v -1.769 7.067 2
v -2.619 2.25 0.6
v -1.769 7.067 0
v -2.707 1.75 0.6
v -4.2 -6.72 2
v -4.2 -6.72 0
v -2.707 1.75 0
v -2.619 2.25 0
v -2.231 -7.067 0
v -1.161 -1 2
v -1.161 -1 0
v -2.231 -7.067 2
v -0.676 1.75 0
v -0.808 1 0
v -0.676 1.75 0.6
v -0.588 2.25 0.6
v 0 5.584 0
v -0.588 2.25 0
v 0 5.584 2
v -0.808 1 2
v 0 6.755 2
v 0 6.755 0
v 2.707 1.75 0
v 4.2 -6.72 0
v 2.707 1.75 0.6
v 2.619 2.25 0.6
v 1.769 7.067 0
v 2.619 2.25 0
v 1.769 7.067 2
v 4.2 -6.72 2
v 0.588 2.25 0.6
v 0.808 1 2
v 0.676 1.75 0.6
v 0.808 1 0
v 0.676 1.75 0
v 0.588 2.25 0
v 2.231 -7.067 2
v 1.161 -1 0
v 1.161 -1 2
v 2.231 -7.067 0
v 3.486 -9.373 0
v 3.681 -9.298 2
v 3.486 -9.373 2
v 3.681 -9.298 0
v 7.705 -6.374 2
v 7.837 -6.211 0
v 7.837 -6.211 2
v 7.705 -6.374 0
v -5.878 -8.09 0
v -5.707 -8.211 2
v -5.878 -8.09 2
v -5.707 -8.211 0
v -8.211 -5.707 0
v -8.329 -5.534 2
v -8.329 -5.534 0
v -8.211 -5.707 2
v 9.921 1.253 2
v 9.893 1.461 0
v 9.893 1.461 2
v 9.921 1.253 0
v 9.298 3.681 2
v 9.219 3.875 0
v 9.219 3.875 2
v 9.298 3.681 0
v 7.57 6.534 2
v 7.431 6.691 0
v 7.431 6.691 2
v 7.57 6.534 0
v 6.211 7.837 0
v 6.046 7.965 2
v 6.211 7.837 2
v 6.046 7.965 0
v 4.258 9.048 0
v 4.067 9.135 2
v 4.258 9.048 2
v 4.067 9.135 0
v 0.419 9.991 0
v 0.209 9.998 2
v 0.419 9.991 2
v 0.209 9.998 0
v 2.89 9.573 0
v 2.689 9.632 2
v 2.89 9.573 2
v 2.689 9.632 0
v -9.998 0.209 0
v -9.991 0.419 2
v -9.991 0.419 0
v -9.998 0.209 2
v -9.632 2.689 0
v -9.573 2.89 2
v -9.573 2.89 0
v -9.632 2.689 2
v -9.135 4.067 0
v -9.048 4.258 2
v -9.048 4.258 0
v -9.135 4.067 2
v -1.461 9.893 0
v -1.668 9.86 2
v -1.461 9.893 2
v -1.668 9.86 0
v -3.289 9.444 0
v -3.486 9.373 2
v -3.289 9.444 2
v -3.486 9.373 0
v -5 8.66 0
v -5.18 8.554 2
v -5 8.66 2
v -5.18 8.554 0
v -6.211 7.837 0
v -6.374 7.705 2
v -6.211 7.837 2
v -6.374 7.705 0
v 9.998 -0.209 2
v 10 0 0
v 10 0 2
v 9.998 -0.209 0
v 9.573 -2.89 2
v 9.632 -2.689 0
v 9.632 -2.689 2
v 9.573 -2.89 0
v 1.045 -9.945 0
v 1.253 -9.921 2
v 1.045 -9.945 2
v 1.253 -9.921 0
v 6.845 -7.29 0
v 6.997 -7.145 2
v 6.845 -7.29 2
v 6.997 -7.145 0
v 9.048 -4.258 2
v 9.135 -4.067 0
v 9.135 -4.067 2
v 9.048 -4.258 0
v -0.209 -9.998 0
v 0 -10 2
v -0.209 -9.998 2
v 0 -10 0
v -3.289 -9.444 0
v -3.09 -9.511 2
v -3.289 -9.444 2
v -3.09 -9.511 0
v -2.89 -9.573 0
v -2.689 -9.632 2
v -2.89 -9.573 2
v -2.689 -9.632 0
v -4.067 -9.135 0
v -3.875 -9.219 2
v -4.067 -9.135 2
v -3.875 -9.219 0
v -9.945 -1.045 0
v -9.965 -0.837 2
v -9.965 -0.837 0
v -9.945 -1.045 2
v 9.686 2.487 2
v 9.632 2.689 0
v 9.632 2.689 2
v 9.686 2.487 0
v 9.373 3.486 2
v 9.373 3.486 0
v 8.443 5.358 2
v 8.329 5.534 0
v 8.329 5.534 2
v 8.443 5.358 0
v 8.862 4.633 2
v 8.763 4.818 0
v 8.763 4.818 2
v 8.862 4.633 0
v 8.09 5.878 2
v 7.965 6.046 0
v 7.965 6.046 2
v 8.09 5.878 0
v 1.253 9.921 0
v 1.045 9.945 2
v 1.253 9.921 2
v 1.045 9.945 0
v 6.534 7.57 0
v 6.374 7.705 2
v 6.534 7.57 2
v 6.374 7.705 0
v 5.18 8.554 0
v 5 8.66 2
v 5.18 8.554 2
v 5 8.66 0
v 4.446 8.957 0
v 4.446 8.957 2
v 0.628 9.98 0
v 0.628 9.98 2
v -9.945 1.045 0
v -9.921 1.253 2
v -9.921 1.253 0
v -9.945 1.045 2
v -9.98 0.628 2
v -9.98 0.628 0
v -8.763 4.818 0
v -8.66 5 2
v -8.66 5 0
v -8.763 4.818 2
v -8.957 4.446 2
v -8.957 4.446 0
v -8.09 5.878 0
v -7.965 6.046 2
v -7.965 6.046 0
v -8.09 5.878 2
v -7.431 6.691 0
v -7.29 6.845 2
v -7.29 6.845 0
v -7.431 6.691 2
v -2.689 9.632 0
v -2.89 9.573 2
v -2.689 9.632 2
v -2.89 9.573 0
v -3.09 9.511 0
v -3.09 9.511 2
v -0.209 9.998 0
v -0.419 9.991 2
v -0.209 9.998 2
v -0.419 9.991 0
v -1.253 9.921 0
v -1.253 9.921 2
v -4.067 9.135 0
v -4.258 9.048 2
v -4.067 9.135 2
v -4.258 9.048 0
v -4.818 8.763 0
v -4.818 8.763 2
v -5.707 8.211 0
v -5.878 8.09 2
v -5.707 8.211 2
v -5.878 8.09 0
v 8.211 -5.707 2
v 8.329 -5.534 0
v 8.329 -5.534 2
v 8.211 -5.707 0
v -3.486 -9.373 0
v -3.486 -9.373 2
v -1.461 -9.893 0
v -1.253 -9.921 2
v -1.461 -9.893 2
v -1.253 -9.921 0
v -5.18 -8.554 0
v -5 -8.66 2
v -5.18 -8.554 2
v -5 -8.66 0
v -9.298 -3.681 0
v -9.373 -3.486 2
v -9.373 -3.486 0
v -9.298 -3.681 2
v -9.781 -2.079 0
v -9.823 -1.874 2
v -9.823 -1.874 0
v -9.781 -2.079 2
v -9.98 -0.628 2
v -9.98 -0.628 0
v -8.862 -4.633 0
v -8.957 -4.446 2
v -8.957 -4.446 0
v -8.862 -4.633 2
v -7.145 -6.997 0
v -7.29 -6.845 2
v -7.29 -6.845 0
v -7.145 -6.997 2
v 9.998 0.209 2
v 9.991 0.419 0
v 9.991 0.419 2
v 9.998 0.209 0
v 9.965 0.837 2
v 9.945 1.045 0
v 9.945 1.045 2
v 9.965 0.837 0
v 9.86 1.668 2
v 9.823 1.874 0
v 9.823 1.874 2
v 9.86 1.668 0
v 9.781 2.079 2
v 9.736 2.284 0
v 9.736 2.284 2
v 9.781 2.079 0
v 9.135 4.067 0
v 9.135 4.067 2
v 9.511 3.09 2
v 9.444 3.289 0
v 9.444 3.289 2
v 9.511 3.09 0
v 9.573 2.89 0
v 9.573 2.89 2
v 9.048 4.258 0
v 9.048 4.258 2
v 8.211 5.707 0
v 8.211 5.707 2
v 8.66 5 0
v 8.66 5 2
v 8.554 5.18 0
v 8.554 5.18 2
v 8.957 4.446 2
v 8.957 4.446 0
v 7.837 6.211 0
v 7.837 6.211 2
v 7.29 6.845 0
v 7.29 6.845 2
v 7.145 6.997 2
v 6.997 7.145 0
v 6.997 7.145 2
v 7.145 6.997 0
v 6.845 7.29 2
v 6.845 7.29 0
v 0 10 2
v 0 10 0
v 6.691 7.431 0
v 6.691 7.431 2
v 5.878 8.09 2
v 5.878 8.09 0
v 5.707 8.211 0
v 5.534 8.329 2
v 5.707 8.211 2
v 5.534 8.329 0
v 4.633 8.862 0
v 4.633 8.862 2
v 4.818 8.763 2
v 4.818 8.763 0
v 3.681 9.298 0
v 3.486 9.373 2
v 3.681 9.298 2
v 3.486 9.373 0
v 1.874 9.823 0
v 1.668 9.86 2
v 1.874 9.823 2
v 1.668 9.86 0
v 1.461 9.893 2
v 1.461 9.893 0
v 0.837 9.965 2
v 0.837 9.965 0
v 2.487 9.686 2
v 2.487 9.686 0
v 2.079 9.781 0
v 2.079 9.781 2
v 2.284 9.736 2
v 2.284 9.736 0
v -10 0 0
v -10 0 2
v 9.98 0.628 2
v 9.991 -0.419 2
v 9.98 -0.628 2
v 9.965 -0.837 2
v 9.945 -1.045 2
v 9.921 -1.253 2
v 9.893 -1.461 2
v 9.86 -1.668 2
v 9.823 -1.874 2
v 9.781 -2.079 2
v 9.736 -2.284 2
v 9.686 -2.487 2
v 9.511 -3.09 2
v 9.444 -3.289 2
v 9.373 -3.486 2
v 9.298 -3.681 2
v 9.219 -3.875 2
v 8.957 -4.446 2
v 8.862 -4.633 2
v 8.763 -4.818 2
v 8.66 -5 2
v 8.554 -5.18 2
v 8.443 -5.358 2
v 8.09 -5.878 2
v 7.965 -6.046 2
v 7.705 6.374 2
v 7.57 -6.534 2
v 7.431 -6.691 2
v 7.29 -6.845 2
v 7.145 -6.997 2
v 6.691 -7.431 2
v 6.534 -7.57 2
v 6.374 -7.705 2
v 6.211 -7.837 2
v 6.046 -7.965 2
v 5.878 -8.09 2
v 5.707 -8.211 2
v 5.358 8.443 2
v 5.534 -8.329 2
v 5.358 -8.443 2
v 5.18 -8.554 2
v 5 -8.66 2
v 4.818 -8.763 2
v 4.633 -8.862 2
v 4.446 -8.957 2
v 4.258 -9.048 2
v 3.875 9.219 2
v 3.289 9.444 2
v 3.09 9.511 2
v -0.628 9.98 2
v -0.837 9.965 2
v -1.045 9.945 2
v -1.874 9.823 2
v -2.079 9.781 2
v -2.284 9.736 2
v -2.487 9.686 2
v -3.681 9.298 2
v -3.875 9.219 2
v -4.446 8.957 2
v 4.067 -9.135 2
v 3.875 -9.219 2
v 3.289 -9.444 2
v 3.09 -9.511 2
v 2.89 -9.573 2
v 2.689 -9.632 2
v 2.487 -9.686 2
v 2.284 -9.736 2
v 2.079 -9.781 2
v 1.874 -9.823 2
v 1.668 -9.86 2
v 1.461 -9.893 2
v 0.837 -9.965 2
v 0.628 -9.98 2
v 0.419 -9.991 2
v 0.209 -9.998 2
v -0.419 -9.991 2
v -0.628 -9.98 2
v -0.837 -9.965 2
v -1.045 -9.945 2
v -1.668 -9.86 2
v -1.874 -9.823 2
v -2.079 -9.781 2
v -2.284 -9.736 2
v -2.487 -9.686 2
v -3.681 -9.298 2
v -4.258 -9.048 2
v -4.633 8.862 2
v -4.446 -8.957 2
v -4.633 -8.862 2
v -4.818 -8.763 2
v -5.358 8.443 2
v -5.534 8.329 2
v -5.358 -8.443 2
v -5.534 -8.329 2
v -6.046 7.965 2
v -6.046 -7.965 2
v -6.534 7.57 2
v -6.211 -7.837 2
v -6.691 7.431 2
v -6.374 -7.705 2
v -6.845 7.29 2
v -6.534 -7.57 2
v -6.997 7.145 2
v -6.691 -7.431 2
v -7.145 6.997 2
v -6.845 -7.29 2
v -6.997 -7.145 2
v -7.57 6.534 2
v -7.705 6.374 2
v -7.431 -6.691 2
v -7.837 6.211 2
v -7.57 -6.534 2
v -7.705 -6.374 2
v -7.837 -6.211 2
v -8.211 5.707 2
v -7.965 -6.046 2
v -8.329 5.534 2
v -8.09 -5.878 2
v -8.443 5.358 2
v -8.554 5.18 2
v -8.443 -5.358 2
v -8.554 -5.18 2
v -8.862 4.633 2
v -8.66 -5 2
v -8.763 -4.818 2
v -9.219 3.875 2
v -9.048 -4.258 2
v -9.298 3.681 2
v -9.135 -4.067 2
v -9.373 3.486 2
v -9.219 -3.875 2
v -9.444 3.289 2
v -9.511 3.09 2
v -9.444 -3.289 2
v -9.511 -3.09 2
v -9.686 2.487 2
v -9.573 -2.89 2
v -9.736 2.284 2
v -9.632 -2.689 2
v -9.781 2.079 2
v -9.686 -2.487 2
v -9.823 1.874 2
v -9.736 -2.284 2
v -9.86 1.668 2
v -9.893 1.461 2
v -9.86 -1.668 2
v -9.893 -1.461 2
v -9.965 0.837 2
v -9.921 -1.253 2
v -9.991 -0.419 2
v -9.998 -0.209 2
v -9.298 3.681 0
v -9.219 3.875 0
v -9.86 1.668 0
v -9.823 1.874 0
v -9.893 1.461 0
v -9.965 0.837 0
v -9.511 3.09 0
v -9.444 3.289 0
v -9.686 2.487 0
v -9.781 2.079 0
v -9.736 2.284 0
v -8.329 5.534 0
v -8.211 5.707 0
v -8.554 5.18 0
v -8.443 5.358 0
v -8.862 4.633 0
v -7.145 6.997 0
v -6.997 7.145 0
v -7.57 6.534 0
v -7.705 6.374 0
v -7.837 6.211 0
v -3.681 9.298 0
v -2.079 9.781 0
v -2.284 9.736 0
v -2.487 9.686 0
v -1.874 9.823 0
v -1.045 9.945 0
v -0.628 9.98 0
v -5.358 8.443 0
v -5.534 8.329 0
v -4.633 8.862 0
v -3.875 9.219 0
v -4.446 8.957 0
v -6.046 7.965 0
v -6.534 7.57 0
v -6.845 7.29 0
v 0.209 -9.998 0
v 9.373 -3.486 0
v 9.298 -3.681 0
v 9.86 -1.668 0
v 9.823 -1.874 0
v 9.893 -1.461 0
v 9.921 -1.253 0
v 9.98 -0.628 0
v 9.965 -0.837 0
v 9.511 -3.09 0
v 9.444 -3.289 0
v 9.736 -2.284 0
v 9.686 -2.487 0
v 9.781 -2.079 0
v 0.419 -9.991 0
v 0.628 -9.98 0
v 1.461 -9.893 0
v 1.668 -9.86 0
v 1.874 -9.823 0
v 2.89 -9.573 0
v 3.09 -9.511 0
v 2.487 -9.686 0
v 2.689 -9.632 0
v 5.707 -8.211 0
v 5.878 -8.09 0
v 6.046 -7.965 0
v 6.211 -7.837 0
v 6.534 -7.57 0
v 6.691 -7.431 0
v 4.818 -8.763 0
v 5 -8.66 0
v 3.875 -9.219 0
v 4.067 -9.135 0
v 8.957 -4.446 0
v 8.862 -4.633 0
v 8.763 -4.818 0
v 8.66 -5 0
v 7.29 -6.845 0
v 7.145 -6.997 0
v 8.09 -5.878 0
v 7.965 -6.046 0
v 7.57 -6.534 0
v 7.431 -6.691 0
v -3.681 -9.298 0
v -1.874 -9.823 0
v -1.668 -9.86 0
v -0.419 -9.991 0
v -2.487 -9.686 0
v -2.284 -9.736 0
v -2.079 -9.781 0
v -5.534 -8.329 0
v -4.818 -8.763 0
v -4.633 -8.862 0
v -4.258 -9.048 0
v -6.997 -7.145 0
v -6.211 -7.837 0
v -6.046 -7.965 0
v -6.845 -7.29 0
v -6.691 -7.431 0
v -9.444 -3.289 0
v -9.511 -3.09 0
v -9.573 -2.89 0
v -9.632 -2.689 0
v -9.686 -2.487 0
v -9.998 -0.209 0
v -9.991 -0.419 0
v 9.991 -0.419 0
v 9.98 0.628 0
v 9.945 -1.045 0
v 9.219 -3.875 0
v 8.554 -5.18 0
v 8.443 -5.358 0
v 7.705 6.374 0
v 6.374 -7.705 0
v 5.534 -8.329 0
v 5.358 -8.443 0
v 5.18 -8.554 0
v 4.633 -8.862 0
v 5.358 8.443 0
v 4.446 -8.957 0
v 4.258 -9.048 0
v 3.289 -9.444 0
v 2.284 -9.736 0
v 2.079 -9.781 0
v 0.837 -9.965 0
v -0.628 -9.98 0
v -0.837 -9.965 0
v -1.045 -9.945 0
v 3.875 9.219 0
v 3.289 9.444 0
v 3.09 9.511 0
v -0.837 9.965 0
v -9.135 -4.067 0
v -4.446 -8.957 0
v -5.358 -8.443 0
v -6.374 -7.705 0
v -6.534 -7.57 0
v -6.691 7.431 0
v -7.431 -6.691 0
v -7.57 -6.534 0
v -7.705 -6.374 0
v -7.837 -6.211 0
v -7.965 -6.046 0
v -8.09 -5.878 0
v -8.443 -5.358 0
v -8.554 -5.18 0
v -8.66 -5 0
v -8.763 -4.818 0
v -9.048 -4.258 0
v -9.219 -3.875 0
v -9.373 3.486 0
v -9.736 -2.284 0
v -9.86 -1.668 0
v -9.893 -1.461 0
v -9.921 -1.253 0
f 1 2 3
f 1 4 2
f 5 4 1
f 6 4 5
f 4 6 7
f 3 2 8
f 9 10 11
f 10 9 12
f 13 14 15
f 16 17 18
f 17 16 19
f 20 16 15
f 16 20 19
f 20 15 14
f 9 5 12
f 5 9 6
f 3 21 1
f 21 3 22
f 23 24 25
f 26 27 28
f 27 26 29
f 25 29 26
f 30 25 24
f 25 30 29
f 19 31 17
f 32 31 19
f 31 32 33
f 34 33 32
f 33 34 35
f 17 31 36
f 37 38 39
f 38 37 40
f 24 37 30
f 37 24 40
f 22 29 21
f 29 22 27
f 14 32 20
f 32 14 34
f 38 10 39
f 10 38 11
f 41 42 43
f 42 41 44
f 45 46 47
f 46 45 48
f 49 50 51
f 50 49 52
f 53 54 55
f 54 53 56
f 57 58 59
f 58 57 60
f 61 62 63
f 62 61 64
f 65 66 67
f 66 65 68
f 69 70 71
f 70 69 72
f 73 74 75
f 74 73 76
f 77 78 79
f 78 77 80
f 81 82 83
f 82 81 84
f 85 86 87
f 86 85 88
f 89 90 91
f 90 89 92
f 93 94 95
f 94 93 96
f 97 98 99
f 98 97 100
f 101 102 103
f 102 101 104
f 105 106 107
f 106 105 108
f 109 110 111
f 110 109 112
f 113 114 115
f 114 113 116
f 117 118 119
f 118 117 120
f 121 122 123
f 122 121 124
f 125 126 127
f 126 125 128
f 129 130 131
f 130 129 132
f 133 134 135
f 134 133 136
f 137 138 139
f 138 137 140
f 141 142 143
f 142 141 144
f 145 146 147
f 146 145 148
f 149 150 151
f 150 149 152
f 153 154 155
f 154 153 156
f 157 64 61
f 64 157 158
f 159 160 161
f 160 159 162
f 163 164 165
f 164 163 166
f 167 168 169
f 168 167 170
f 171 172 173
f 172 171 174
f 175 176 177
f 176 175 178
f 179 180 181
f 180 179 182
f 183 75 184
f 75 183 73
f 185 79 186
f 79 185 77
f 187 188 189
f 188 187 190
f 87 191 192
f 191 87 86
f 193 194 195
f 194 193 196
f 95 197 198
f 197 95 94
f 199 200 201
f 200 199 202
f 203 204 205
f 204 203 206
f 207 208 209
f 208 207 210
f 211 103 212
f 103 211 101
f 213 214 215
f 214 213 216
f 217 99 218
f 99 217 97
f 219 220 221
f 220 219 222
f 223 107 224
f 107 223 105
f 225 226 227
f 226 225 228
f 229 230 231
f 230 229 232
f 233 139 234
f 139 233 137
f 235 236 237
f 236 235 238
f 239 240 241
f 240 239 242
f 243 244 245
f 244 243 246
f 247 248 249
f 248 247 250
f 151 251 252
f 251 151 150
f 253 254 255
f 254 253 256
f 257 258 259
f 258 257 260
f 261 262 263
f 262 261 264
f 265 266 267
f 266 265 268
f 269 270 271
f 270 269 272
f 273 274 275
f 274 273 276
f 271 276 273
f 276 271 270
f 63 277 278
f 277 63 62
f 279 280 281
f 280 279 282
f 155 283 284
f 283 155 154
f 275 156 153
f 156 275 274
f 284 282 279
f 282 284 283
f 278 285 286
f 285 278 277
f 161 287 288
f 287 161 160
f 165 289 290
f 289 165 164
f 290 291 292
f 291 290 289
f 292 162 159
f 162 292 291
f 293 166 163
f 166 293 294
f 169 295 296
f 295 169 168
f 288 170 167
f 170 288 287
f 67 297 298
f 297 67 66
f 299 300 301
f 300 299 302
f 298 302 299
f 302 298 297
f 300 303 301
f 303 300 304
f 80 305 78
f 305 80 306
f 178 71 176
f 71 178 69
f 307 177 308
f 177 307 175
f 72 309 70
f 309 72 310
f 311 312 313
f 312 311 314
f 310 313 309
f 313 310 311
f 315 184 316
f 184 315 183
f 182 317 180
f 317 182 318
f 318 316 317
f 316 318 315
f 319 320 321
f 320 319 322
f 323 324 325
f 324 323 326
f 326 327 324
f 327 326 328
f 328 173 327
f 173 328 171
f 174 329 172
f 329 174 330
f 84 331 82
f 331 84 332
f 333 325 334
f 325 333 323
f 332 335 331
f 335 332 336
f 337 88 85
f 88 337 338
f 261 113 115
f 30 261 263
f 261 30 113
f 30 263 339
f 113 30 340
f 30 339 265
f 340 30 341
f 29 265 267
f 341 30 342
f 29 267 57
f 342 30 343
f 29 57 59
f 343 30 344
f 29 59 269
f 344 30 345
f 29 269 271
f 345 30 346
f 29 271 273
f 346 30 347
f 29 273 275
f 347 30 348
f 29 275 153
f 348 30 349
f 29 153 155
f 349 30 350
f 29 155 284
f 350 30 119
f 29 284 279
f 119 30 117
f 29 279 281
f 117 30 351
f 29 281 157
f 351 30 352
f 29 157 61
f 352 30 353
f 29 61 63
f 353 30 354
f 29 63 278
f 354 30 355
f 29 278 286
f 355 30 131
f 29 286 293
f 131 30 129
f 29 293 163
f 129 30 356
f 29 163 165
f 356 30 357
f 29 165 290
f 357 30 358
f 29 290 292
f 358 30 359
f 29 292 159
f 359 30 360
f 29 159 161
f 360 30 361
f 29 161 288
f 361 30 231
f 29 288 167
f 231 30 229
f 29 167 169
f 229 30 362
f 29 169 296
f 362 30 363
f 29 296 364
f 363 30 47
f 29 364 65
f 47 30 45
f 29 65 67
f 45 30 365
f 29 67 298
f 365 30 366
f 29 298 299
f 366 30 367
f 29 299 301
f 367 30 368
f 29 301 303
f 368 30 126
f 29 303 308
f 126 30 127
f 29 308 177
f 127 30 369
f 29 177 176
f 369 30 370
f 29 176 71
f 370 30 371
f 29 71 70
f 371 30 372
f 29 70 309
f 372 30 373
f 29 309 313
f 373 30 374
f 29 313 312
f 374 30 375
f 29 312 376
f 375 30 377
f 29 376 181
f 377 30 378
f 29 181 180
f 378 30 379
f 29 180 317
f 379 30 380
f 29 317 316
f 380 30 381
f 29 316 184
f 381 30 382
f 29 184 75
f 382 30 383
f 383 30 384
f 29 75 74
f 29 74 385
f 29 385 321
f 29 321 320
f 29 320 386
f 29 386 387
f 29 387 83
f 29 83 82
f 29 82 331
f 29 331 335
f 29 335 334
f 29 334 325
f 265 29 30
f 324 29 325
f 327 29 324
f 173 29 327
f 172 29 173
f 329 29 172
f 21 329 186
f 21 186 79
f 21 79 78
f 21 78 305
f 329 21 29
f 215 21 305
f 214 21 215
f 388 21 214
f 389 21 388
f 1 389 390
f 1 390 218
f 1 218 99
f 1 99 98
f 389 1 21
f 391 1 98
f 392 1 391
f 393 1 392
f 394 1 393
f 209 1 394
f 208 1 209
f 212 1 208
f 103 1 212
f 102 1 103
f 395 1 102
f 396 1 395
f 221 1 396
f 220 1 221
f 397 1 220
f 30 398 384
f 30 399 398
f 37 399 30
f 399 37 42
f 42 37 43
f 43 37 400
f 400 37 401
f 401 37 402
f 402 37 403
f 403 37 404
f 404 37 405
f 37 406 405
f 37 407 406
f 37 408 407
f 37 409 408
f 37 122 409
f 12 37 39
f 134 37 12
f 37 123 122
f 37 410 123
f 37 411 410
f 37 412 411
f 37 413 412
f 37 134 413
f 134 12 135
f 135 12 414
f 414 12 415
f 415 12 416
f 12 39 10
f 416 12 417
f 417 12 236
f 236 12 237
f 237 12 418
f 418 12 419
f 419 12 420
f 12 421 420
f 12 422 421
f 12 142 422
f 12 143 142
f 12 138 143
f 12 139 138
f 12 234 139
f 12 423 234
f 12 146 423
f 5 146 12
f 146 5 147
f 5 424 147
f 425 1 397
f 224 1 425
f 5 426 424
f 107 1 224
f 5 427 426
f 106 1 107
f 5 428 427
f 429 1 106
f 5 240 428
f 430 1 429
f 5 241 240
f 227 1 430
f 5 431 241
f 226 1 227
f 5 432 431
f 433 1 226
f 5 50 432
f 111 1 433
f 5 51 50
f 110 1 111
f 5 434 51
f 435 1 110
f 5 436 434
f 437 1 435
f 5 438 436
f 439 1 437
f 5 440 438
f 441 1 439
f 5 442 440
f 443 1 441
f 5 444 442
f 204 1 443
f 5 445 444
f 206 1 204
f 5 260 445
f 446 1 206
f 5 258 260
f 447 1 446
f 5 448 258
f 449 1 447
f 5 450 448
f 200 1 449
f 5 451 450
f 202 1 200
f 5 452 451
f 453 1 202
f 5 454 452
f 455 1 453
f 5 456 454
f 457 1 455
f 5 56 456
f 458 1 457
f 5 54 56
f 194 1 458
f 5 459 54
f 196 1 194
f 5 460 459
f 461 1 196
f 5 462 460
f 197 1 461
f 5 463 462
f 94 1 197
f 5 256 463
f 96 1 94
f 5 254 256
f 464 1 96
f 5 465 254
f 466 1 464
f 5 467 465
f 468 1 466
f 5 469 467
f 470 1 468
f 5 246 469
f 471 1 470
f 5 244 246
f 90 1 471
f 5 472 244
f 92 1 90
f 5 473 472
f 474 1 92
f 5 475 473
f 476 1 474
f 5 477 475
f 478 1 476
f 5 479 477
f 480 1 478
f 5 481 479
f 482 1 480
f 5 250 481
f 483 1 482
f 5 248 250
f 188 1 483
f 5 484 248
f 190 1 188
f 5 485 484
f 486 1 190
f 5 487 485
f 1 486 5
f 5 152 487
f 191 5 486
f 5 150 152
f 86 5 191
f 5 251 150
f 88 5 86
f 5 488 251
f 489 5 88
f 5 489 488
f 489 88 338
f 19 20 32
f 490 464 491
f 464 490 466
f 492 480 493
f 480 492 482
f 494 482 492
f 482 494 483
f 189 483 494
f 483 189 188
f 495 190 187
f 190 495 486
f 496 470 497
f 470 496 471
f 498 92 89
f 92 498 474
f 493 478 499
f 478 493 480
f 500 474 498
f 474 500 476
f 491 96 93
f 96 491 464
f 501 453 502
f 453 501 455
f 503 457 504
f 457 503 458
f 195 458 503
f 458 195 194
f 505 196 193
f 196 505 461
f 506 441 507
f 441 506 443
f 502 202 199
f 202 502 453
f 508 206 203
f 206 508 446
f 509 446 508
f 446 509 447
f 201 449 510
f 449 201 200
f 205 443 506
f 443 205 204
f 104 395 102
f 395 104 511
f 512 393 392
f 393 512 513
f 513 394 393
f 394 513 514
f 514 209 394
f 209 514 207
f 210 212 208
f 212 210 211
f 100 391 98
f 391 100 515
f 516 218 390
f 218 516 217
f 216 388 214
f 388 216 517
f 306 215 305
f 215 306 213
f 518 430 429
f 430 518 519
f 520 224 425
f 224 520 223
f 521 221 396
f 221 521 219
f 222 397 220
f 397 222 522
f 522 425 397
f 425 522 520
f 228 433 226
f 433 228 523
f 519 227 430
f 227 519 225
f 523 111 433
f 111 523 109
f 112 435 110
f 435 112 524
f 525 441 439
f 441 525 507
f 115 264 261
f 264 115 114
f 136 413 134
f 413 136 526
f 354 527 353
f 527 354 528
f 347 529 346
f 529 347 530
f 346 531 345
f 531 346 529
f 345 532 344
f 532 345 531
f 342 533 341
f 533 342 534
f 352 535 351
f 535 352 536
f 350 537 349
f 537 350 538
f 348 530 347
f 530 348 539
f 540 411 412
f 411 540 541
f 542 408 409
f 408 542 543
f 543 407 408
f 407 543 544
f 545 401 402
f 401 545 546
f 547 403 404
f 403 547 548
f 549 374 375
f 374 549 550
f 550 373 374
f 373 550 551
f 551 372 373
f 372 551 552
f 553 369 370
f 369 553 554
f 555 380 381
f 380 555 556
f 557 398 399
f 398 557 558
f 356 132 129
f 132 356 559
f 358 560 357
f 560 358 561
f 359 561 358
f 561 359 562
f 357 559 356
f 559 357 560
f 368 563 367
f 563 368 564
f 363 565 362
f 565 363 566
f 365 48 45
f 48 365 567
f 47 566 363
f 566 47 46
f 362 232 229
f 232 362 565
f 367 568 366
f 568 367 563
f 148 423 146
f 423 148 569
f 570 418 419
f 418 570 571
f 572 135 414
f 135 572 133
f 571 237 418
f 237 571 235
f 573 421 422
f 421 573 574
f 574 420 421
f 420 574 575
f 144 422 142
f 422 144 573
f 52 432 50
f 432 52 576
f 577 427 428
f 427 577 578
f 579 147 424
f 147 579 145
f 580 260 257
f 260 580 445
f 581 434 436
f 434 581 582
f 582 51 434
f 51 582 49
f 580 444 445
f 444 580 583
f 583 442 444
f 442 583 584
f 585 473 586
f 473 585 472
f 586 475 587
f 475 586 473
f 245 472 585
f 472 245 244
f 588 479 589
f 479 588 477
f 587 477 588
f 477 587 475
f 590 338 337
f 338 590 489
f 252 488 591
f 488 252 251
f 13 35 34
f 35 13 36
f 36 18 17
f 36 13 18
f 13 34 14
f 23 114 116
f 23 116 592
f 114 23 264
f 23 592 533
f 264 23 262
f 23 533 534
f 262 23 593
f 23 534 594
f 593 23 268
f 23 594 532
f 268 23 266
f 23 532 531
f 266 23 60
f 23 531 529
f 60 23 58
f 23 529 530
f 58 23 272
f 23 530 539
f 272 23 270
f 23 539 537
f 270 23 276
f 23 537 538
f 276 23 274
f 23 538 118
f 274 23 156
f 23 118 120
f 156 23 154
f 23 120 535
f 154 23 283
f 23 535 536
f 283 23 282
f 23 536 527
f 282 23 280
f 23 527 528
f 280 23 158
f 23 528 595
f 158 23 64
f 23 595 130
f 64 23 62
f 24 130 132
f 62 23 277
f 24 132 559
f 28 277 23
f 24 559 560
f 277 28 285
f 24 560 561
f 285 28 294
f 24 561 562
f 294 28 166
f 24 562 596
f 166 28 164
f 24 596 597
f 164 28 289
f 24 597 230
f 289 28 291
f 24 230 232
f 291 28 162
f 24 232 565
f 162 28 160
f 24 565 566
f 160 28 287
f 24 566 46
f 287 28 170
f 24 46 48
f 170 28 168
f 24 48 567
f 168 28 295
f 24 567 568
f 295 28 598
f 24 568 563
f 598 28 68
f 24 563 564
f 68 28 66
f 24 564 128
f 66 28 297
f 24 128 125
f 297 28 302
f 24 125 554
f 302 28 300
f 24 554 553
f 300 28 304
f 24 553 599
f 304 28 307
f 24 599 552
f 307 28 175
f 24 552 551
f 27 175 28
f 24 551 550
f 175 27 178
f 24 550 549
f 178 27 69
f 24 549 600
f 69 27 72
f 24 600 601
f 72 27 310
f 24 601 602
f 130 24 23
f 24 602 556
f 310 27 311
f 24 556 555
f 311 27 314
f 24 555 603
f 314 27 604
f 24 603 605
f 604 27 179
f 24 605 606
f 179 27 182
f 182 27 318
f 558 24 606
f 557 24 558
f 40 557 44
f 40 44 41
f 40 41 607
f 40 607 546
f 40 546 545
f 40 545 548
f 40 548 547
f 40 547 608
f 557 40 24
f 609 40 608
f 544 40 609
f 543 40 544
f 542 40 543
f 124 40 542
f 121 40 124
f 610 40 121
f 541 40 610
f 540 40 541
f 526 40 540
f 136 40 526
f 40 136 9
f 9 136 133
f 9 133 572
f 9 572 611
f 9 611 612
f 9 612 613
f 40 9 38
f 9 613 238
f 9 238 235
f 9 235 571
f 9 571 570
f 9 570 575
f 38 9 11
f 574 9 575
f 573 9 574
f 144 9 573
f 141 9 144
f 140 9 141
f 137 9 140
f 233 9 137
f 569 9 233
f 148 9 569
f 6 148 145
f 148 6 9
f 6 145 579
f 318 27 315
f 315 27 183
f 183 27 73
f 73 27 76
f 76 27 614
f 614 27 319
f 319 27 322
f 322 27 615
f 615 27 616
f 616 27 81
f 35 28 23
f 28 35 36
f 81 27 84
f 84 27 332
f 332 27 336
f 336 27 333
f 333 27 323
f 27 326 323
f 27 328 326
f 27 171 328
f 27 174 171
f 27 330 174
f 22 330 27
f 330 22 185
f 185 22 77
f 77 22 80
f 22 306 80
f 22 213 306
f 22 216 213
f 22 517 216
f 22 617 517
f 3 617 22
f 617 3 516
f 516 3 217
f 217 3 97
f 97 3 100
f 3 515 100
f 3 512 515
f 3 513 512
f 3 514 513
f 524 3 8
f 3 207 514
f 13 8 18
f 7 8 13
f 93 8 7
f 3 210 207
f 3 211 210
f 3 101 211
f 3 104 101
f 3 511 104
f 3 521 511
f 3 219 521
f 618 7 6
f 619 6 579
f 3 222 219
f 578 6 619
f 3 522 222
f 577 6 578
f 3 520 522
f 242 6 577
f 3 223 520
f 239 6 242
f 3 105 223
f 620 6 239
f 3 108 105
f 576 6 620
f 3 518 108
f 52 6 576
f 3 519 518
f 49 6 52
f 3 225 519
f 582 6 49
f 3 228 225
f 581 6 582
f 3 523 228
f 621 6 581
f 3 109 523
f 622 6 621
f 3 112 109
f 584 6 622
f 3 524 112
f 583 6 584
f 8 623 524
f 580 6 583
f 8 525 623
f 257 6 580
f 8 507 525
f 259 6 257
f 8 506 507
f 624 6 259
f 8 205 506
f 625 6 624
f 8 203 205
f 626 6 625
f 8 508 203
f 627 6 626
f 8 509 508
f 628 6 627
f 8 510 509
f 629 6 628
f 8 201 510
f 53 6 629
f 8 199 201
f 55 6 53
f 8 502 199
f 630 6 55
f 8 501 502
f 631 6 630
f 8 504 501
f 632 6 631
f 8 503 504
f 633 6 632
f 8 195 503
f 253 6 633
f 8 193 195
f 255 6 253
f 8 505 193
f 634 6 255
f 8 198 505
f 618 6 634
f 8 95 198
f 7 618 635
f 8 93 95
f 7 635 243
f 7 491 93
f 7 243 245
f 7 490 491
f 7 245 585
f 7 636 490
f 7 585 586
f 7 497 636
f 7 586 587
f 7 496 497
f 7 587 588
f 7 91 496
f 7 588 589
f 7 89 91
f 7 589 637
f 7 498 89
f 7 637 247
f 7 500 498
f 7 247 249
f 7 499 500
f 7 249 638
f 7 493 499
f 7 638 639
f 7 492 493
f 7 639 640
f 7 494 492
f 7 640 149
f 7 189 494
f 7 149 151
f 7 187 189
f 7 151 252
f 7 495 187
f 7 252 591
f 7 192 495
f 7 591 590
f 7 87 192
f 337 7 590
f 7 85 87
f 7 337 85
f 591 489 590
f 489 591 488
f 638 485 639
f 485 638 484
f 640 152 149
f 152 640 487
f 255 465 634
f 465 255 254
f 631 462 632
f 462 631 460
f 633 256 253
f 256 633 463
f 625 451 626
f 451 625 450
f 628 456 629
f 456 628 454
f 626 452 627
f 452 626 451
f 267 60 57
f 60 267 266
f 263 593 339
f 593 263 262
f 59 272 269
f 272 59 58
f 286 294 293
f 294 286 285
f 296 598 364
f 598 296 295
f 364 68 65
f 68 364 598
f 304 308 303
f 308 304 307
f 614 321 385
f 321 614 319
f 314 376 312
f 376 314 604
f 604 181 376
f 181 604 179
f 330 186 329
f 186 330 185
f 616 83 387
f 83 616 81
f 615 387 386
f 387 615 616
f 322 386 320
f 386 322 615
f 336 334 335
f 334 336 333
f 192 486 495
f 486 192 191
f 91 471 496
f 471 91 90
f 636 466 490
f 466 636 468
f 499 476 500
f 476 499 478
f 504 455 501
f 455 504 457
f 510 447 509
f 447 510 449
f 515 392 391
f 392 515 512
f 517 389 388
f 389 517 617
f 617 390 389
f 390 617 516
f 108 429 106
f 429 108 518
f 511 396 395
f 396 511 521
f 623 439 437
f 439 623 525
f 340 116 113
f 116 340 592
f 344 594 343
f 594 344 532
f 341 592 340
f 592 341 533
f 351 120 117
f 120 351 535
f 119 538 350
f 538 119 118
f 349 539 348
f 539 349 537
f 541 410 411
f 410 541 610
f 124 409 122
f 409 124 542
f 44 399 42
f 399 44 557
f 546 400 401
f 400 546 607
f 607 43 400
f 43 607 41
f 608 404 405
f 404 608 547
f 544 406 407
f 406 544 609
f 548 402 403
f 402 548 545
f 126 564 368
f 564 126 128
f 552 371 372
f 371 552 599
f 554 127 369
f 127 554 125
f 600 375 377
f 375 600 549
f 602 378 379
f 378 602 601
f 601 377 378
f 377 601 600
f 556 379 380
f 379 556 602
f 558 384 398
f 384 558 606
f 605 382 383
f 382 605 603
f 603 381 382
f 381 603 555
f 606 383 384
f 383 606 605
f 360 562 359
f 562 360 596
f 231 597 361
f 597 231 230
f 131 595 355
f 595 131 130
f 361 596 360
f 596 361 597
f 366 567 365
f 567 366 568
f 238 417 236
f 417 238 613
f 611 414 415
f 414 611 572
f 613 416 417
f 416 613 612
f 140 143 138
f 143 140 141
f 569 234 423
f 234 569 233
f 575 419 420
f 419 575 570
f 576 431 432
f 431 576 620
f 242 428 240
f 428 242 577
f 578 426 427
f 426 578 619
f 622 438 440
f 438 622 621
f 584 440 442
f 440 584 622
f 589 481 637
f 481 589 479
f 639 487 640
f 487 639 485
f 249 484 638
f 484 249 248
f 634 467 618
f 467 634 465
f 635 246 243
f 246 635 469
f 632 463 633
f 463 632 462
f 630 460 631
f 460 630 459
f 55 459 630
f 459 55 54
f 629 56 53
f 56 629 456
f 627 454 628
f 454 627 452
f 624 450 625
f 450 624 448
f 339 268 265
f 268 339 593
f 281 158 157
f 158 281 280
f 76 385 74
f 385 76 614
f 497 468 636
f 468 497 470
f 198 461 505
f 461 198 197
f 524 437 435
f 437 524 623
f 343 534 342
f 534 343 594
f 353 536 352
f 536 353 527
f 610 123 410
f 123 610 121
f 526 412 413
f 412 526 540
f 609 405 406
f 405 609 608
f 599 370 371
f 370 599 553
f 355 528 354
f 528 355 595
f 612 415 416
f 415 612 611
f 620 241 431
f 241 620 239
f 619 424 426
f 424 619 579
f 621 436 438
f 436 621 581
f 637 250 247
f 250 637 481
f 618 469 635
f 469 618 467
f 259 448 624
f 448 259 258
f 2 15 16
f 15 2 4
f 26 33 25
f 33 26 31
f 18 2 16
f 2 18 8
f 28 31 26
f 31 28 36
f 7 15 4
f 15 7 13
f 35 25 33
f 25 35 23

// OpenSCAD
/* [Global] */
coin_diameter=20;
coin_thickness=2;

/* [Hidden] */
radius=coin_diameter/2;
fn=300;


module base(){
	 color("red")cylinder(h=coin_thickness, r=radius, $fn=fn);
}

module a(){
    h_width = 0.1*coin_diameter;
    h_height = coin_thickness*3;
    
    translate([-0.2*radius,0,0])rotate([0,0,-10])cube([h_width,0.7*coin_diameter,h_height], center=true);
    translate([0.2*radius,0,0])rotate([0,0,10])cube([h_width,0.7*coin_diameter,h_height], center=true);
    translate([0,0,0])cube([0.4*radius, h_width,h_height], center=true);
    
}

module token(){
    difference(){
        base();
        a();
        
    }
    translate([-0.1*radius,0.2*radius,0.3])cube([1*radius,0.5,0.6],center=true);
}

token();
